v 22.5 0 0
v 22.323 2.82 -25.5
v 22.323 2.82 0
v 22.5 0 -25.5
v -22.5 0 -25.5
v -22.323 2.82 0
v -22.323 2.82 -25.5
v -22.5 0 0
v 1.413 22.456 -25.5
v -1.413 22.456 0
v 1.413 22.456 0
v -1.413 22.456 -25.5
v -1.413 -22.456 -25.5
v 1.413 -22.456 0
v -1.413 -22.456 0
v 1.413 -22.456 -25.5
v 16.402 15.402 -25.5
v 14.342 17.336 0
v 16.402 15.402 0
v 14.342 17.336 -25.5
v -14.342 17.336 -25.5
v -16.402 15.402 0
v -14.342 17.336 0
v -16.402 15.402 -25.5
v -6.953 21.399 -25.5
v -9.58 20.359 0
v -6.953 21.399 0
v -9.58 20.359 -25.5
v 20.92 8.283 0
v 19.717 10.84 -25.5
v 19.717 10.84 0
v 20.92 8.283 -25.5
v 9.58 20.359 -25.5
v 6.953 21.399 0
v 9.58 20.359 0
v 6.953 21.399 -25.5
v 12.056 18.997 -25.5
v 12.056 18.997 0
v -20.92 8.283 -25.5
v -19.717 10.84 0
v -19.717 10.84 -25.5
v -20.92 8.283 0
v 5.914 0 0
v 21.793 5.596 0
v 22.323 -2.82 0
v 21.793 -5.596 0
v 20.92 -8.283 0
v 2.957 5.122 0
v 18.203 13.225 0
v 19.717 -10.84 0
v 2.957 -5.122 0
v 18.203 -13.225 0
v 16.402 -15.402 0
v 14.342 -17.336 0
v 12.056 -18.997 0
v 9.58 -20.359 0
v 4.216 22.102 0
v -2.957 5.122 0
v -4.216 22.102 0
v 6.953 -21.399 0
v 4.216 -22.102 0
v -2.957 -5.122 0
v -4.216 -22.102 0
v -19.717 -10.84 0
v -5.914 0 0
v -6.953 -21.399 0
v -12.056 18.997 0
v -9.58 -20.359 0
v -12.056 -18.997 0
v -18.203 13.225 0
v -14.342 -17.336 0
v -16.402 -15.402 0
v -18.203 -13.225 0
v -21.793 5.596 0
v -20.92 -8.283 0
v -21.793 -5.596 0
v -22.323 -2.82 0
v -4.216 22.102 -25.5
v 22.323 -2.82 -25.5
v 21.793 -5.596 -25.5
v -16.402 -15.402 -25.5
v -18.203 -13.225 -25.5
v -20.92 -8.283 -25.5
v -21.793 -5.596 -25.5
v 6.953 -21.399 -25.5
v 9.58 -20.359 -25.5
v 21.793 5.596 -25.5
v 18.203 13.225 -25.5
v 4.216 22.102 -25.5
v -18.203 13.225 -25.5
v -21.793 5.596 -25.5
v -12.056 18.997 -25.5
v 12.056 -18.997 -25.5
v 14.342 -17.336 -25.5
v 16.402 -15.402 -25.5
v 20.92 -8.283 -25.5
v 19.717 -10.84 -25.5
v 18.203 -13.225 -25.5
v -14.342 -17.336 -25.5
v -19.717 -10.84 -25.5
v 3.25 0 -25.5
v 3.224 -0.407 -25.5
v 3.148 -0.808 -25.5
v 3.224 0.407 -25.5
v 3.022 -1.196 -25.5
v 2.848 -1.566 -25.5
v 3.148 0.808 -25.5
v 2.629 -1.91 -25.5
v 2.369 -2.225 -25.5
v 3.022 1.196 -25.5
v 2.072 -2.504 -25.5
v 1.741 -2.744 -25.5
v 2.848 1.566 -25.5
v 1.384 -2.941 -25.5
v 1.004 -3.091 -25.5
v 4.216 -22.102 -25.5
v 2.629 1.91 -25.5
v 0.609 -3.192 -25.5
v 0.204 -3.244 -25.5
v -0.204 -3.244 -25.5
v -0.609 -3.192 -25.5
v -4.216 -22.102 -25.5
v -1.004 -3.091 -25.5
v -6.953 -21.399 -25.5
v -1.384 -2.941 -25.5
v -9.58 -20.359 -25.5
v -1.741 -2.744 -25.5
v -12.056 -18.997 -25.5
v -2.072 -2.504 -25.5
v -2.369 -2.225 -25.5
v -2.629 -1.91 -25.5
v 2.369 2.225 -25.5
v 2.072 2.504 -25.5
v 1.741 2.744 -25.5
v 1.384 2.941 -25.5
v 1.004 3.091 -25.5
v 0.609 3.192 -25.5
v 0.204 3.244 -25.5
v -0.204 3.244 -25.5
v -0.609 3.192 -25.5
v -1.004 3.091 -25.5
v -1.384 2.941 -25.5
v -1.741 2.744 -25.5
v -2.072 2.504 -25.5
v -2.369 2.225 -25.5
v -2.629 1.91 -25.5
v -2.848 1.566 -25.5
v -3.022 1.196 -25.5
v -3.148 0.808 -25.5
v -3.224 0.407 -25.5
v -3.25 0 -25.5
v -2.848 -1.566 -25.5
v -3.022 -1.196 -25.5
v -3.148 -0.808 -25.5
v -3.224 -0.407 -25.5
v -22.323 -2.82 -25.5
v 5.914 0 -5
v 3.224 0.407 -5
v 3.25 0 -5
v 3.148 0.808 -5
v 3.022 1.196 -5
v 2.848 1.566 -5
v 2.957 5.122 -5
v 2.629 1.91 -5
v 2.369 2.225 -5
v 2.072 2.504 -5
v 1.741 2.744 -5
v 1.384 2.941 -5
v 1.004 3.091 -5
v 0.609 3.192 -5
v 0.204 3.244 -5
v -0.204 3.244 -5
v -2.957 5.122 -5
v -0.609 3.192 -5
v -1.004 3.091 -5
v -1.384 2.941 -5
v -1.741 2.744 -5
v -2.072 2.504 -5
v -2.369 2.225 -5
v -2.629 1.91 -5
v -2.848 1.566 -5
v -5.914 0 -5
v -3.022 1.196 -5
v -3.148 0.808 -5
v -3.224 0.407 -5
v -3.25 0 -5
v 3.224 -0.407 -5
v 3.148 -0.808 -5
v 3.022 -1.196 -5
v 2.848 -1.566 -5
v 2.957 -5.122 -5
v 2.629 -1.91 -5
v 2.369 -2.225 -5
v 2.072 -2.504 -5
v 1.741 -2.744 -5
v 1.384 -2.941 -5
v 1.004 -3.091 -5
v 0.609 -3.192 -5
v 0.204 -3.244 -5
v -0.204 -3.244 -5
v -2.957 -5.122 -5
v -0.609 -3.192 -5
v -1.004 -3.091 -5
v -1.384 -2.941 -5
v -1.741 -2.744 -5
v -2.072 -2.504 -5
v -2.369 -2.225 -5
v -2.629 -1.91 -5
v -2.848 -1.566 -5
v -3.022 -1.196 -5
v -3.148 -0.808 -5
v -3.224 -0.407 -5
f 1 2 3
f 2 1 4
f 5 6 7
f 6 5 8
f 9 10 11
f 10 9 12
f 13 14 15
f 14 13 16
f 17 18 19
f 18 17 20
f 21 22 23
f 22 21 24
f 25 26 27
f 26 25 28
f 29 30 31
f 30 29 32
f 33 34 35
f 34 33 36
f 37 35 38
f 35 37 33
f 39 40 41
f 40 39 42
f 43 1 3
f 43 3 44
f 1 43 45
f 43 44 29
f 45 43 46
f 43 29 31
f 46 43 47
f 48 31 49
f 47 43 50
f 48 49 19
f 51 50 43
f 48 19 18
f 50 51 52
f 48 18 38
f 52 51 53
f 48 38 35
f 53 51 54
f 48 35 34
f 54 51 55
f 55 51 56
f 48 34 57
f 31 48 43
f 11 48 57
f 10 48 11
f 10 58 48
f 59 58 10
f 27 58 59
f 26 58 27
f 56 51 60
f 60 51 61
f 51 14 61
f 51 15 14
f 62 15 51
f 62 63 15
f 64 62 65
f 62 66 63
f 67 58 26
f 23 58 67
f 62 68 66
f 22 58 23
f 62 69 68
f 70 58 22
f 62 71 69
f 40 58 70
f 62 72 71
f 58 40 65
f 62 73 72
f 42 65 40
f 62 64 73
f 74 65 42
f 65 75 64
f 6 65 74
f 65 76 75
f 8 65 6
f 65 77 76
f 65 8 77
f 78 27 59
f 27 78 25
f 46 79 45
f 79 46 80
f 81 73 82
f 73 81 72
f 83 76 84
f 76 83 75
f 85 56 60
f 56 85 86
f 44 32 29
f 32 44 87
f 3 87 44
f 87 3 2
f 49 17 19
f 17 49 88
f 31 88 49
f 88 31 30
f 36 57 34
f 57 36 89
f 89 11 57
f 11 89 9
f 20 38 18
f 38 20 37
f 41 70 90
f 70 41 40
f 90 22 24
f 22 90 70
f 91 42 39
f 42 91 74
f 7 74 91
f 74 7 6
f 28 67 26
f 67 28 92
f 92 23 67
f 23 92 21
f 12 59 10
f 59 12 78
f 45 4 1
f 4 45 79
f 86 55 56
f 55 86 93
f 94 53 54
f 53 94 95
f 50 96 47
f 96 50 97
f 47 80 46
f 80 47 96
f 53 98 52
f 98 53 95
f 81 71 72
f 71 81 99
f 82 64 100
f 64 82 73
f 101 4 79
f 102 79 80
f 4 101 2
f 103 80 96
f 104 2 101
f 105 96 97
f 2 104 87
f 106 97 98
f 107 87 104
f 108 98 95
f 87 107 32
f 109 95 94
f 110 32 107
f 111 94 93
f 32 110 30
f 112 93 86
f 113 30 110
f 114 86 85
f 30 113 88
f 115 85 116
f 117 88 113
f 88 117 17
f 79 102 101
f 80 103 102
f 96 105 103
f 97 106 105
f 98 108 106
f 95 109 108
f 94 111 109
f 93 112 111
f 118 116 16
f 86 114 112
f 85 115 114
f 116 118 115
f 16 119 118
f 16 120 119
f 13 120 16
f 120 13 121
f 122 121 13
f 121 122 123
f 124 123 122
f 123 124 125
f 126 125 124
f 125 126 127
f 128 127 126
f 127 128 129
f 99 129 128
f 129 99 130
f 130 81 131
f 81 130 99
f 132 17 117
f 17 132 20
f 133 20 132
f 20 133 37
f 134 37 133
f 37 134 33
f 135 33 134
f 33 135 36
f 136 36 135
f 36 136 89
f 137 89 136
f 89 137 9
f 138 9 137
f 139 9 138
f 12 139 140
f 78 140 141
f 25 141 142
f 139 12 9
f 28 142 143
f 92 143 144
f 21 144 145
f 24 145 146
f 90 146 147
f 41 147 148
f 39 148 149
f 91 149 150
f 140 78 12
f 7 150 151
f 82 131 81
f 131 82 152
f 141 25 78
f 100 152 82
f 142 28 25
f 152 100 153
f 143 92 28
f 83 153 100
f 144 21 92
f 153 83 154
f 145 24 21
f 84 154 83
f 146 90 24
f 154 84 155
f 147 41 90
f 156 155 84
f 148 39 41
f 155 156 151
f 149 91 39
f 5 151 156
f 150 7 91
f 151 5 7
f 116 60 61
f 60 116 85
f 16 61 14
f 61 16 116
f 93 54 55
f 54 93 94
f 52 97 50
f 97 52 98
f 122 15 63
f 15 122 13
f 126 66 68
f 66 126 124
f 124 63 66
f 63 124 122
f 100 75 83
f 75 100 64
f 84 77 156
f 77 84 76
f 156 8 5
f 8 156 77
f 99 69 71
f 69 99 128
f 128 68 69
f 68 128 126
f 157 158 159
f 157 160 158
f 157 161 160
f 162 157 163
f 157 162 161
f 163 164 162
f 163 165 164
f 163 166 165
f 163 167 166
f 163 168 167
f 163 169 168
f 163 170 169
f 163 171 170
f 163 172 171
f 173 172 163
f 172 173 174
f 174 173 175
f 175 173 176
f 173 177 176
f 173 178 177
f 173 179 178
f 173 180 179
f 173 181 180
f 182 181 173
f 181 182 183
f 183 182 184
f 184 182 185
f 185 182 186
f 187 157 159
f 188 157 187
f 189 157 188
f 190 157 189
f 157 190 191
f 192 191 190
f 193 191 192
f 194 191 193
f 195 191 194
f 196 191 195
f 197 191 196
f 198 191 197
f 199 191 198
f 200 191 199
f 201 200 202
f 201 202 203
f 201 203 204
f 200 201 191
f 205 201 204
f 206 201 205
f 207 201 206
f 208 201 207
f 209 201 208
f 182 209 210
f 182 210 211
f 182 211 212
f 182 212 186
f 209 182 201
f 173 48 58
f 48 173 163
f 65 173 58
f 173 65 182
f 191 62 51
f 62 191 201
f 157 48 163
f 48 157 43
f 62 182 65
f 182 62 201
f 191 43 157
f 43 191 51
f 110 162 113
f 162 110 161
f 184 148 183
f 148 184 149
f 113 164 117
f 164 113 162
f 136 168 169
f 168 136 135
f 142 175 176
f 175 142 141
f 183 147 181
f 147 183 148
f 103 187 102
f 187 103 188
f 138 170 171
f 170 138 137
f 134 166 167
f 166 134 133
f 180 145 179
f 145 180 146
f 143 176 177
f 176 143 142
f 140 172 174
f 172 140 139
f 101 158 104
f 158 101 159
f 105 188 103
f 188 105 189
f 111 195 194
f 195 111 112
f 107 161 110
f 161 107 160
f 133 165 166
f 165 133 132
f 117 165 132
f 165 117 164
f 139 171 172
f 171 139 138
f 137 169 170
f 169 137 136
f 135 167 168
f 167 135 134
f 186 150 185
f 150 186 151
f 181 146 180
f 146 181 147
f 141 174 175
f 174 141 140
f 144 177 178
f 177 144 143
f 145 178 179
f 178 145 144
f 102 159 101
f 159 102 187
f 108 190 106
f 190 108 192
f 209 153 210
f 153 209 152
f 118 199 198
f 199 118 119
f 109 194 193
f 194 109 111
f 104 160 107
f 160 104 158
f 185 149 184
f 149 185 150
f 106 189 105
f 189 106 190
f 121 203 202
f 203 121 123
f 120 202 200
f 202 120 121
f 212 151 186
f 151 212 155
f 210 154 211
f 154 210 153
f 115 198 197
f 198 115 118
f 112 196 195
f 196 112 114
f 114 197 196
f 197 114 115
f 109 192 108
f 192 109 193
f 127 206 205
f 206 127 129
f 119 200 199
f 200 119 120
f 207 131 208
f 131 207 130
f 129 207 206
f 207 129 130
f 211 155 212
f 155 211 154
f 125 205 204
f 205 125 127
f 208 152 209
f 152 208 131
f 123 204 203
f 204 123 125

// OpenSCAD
$fn = 50;

difference() {
	union() {
		translate(v = [0, 0, -25.5]) {
			cylinder(h = 25.5, r = 22.5);
		}
		#translate(v = [0, 0, -27.0]) {
			cylinder(h = 27, r = 2.875);
		}
	}
	union() {
		translate(v = [0, 0, 0]) {
			rotate(a = [0, 0, 0]) {
				difference() {
					union() {
						translate(v = [0, 0, -5]) {
							linear_extrude(height = 5) {
								polygon(points = [[5.914249999999999, 0.0], [2.957125, 5.1218907443321156], [-2.9571249999999982, 5.1218907443321156], [-5.914249999999999, 7.242867331857232e-16], [-2.9571250000000022, -5.121890744332115], [2.9571249999999956, -5.121890744332118]]);
							}
						}
					}
					union();
				}
			}
		}
		#translate(v = [0, 0, -100.0]) {
			cylinder(h = 200, r = 3.25);
		}
	}
}
